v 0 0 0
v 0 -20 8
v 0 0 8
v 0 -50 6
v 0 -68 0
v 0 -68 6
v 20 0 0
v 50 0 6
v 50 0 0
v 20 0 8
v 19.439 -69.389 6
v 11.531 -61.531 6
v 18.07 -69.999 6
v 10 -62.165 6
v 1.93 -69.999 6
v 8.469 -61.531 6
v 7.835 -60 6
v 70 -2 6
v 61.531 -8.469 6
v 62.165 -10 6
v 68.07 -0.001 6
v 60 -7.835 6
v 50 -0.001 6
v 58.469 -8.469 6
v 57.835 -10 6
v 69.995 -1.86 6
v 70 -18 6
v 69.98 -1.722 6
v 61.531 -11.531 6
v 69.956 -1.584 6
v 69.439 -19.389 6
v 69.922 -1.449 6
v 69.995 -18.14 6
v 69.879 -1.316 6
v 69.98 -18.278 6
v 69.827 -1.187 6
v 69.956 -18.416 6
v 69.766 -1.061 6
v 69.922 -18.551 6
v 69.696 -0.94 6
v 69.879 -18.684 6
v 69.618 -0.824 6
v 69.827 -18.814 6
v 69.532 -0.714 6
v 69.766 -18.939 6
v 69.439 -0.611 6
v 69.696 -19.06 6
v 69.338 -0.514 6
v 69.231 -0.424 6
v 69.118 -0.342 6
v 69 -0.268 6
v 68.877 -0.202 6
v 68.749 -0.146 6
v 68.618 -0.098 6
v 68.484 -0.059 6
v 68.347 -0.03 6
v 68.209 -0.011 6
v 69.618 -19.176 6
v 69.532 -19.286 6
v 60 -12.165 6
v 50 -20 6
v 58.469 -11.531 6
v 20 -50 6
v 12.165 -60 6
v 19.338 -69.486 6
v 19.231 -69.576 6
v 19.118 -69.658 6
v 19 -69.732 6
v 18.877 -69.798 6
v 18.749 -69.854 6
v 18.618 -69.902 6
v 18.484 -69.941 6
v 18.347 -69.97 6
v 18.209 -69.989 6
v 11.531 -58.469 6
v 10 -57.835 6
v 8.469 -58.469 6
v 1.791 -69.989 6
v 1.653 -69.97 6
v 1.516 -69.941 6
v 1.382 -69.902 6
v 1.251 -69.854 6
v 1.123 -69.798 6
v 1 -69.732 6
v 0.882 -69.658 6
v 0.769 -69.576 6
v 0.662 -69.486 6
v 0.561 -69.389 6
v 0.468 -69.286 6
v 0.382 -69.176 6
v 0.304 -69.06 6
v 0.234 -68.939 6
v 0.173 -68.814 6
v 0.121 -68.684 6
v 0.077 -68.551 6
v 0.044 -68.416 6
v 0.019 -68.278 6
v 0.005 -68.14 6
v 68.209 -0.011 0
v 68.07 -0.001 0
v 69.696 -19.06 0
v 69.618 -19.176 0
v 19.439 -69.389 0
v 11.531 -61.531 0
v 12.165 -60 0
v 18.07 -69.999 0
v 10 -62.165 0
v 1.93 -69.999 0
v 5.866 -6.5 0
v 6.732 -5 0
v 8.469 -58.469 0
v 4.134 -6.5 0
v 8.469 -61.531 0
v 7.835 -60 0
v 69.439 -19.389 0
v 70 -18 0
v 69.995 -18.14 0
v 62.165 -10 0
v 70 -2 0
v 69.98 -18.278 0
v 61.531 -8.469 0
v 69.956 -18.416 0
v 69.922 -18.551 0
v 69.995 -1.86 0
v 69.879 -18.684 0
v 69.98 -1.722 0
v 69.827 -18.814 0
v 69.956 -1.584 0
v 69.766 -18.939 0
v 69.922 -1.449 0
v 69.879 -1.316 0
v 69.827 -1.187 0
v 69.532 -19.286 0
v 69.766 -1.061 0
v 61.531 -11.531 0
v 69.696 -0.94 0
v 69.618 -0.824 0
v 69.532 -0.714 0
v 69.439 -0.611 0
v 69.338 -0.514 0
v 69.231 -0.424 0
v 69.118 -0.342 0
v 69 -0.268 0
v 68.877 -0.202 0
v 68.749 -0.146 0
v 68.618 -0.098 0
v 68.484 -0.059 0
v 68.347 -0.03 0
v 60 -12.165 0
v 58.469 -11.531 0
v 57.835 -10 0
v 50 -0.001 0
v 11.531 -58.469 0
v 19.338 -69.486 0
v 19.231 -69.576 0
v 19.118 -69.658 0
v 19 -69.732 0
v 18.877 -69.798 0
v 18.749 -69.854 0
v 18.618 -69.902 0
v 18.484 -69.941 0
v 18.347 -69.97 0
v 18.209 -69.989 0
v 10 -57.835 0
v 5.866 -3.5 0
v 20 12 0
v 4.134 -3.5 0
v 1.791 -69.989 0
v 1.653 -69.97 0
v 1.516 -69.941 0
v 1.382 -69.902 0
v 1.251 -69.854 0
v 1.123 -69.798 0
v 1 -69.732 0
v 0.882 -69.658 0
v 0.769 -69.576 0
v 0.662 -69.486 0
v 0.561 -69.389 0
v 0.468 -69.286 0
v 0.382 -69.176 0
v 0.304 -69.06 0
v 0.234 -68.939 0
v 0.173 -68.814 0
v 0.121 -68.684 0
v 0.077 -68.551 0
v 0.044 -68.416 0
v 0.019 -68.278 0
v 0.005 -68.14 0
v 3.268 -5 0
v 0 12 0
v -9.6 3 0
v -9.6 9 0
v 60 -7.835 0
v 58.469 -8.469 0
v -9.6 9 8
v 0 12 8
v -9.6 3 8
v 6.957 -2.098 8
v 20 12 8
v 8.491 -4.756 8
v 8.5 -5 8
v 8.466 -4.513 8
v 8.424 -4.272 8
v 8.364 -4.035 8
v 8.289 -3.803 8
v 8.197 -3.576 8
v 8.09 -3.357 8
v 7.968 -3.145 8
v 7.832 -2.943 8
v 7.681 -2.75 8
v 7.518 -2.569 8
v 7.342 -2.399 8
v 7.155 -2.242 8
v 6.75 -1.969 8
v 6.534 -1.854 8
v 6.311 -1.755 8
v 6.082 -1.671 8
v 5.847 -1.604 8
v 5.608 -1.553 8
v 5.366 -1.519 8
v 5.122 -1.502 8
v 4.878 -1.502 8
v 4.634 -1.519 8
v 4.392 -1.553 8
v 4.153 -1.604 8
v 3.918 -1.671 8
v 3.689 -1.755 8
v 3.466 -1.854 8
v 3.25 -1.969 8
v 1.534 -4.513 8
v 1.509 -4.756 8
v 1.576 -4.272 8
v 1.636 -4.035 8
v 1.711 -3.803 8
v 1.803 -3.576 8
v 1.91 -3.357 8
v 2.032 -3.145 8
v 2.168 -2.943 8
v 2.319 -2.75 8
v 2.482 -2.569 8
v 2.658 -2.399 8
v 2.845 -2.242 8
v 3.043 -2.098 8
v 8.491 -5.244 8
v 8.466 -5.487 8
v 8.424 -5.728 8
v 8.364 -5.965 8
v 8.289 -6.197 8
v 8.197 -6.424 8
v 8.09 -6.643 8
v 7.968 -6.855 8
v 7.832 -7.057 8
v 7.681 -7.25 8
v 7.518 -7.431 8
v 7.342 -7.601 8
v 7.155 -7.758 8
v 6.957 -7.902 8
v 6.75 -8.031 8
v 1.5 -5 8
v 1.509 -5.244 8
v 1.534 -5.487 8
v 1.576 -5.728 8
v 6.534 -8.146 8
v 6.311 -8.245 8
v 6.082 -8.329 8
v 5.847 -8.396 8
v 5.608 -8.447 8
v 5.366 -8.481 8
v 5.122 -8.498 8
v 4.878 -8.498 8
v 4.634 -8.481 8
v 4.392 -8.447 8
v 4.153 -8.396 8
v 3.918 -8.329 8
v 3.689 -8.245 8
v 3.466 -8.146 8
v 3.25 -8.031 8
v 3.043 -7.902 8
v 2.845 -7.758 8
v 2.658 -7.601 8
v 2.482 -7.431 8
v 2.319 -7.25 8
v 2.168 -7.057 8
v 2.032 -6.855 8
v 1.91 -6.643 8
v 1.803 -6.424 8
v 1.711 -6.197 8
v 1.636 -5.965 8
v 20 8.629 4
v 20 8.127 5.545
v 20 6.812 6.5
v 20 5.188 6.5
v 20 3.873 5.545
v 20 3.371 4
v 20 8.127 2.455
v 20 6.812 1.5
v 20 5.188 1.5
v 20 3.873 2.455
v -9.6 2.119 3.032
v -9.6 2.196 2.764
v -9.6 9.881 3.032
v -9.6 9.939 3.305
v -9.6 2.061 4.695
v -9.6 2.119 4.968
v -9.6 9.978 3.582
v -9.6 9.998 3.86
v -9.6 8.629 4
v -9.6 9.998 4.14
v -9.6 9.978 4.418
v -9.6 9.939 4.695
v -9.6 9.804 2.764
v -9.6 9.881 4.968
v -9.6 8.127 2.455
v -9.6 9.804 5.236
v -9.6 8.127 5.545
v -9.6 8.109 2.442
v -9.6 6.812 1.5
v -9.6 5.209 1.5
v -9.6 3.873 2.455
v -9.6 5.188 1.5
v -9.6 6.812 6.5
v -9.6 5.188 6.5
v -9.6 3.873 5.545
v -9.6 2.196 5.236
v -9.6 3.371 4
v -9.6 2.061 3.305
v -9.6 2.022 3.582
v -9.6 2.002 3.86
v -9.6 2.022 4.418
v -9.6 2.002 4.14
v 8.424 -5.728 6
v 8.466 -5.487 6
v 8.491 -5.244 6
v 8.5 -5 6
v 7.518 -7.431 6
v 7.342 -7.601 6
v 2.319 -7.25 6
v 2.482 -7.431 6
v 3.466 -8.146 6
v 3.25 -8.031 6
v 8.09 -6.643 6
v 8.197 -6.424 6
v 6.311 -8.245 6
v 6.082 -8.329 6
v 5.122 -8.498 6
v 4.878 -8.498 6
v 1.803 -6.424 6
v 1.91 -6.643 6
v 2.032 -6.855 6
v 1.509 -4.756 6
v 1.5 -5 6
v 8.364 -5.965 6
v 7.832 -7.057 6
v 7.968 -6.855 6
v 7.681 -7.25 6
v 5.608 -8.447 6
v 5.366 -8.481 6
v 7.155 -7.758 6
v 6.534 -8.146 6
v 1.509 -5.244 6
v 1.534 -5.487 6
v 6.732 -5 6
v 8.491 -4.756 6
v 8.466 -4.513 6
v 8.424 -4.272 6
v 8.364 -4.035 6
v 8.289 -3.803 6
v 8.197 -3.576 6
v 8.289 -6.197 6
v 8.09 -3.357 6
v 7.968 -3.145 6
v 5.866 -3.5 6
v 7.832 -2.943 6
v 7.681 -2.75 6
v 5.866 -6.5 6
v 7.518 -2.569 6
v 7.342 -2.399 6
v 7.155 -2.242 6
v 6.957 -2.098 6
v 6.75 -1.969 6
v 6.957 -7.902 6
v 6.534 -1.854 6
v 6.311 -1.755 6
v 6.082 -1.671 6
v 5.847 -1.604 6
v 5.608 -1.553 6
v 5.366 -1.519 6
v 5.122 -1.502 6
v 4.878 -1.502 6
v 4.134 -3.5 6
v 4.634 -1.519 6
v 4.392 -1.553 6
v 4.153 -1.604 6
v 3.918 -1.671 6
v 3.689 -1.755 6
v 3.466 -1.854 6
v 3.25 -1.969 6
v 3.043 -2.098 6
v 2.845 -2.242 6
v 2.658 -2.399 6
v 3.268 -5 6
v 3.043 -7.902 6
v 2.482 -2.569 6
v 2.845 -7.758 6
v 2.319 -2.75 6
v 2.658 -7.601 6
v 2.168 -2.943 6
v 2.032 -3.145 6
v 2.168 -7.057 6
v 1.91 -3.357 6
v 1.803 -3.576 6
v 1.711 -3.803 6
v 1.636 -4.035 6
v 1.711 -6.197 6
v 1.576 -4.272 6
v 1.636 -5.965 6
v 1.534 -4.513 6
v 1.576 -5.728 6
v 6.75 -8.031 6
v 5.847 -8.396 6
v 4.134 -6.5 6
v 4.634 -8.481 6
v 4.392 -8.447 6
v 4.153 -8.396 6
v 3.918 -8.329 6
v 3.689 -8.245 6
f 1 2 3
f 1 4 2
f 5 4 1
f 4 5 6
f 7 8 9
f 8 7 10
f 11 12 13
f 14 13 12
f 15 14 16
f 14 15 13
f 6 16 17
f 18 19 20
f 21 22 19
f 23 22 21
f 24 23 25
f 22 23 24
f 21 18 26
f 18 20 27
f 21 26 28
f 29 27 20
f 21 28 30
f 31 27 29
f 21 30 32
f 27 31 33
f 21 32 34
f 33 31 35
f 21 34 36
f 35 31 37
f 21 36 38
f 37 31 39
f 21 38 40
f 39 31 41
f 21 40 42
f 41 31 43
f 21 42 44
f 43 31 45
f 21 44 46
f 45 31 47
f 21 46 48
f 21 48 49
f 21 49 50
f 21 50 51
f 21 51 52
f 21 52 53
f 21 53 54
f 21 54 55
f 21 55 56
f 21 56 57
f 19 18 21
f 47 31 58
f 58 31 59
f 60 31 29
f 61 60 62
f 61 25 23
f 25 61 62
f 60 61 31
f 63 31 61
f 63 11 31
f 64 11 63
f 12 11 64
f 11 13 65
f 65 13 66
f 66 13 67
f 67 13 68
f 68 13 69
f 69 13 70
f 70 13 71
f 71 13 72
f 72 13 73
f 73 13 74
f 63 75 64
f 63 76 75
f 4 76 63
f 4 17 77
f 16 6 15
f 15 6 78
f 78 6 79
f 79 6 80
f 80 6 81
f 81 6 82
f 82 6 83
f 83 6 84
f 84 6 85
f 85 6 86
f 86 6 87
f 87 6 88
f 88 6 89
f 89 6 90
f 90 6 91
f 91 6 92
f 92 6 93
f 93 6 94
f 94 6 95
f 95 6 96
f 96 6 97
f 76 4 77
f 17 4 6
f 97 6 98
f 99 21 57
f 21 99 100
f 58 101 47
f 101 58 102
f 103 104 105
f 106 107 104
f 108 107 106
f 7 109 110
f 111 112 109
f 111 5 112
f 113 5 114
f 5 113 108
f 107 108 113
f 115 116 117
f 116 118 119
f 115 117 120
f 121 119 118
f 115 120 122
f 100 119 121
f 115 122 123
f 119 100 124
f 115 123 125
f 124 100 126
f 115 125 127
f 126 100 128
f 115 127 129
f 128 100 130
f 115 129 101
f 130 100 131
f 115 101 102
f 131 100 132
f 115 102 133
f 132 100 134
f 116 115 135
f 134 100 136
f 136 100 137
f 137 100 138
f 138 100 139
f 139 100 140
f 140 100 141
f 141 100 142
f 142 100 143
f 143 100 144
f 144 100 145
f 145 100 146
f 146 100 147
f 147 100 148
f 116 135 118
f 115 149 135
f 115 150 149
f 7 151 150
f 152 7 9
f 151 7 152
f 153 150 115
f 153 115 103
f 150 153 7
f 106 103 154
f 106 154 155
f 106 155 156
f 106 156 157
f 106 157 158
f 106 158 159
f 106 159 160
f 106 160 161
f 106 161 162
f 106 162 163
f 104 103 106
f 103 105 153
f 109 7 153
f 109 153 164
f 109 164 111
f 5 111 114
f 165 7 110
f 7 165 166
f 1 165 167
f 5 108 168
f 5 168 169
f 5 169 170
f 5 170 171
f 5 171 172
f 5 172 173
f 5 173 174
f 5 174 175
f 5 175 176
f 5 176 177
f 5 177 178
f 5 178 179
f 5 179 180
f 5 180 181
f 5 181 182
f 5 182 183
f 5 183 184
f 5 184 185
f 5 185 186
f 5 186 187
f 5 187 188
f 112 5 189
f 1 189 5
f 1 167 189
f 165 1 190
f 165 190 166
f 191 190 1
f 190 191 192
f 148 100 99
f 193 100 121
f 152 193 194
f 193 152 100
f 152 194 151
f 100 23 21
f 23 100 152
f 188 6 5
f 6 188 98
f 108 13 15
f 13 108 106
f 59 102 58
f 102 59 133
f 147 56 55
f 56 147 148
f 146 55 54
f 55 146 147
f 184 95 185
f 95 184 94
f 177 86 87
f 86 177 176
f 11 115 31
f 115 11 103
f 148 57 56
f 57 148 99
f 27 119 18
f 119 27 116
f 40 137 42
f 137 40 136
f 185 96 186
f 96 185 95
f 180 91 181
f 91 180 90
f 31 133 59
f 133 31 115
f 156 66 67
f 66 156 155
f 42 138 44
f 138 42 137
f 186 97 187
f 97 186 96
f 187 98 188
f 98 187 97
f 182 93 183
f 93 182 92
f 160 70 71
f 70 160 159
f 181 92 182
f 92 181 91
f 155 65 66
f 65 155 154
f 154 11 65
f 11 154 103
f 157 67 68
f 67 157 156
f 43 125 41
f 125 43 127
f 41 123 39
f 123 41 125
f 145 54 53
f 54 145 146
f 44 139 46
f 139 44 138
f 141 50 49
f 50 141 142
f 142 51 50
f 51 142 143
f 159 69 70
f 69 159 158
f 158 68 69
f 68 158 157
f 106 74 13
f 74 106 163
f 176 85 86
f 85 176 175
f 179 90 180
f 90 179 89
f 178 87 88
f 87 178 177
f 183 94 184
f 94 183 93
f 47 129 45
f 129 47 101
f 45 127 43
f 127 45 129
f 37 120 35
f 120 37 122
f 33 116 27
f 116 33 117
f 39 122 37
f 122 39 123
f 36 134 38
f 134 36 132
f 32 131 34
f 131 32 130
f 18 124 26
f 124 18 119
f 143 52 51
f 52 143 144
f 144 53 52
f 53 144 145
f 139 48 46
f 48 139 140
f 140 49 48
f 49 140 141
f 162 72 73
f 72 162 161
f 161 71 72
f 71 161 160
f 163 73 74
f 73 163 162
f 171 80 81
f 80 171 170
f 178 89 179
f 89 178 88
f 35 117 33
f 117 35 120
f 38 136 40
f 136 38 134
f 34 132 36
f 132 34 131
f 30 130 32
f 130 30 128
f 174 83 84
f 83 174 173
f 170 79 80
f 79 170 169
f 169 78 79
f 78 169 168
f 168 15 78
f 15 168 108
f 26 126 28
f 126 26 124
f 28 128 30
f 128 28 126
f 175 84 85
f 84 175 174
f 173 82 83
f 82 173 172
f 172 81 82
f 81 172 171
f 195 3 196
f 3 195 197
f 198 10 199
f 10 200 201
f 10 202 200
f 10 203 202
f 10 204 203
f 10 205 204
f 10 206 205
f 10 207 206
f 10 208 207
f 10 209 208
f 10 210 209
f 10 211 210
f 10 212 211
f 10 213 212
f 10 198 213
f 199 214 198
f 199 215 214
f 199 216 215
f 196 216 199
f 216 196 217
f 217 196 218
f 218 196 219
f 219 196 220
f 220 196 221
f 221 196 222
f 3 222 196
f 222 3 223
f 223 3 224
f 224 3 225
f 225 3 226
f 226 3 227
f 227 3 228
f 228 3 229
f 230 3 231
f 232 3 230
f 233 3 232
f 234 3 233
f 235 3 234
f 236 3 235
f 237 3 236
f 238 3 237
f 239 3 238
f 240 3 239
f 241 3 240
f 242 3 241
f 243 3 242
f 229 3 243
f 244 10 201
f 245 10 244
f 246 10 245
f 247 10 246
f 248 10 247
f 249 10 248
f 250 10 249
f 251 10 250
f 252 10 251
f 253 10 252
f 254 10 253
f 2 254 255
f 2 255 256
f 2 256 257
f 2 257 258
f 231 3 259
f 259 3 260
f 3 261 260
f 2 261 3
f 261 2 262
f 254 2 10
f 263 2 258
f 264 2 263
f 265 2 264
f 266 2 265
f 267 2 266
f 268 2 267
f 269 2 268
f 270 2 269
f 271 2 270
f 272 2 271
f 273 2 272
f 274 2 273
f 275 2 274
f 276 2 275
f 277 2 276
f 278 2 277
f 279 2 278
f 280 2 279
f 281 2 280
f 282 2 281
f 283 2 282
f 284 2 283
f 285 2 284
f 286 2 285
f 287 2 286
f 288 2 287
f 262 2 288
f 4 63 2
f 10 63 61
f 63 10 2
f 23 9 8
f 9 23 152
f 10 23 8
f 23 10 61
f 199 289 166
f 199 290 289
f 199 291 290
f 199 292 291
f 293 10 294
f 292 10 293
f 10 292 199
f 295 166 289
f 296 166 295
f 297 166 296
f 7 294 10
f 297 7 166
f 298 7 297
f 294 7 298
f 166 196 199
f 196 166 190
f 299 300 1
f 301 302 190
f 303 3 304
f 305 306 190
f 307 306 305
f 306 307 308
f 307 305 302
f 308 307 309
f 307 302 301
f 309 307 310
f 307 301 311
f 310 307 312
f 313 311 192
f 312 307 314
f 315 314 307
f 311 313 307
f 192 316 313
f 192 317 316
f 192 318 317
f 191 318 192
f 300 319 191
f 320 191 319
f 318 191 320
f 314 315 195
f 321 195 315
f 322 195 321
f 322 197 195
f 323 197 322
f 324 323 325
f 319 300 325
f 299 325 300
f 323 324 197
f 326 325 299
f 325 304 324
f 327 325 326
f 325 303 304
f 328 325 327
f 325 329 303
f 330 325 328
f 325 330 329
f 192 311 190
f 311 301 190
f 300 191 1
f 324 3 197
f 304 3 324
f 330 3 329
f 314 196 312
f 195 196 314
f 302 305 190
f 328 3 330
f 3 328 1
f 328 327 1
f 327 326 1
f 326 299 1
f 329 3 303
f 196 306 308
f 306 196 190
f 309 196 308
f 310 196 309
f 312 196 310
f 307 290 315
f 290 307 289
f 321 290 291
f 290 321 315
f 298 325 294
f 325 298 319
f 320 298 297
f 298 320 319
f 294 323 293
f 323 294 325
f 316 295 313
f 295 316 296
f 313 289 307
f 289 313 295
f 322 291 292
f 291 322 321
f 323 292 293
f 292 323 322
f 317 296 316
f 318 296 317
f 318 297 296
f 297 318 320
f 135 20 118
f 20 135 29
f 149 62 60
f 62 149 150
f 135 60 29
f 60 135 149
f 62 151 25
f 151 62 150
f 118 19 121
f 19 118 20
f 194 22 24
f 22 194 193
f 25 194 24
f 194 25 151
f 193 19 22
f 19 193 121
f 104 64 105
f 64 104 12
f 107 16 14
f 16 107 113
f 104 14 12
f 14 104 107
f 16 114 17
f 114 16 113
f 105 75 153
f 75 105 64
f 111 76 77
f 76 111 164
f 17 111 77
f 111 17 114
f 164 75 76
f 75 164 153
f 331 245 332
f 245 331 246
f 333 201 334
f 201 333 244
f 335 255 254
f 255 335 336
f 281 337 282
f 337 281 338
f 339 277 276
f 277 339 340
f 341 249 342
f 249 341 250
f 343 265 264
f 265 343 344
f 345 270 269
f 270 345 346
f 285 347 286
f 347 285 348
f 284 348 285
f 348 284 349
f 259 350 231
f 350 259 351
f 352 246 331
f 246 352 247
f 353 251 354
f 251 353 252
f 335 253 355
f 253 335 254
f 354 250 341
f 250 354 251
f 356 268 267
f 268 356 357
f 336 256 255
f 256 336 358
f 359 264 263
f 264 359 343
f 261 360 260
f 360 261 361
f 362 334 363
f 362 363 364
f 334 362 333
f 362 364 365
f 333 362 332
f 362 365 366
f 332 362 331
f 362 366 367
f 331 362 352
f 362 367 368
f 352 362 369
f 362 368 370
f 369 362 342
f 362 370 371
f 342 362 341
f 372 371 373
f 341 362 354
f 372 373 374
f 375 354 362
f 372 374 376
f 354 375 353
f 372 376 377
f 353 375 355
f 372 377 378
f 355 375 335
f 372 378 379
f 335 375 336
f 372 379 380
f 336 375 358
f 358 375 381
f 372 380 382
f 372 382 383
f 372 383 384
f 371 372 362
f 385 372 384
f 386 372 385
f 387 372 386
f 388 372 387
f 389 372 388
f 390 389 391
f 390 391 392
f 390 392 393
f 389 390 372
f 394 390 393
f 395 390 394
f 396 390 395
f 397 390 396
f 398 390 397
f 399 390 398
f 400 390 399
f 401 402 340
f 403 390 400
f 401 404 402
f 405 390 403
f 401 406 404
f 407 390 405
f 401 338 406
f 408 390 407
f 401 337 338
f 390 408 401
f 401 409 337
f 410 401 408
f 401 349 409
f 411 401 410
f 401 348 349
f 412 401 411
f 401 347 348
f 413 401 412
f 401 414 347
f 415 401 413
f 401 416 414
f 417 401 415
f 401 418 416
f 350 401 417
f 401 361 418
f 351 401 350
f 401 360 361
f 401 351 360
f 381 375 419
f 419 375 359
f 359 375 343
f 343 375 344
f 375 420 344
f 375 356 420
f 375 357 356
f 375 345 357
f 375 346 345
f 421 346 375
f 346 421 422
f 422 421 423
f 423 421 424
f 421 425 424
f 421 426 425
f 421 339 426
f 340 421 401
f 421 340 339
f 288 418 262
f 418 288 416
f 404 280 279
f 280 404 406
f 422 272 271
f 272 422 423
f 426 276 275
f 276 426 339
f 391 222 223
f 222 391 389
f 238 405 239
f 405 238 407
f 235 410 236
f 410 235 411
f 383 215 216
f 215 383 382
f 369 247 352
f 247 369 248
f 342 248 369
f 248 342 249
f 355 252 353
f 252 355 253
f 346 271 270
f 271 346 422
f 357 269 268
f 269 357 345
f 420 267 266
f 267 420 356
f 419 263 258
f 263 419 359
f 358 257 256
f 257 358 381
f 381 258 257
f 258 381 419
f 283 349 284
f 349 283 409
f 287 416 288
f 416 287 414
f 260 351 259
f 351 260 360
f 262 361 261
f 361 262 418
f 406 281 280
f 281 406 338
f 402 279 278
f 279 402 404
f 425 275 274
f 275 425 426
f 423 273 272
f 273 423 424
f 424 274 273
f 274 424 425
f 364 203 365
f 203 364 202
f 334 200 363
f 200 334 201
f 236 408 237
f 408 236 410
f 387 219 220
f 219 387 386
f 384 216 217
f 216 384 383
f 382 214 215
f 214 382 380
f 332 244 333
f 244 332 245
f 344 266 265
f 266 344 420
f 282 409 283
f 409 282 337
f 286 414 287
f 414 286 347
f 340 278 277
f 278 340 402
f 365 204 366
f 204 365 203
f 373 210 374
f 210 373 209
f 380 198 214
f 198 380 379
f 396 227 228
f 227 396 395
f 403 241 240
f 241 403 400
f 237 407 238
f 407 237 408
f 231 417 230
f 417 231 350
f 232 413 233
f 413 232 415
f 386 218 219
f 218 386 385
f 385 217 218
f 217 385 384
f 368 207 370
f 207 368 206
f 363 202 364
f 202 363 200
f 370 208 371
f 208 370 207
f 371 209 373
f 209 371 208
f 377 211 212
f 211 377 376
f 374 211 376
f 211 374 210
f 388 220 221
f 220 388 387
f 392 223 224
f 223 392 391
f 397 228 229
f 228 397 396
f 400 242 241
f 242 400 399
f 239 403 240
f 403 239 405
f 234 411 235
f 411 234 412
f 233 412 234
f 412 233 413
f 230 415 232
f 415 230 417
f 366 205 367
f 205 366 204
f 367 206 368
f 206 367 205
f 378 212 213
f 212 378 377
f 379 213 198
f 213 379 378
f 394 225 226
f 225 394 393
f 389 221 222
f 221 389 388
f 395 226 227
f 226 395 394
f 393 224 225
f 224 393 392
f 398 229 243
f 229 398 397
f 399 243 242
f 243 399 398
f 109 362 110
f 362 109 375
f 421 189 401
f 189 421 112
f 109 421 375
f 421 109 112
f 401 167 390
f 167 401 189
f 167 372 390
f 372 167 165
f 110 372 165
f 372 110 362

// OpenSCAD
// file: polyhole.scad
// The Cylinder is dead! Long live the Cylinder!
// A module for a polyhole by radius, based on Nophead's work.

module polyhole(h, r, cent = false)
{
    n = max(round(4 * r), 3);
    cylinder(h = h, r = r / cos(180 / n), $fn = n, center = cent);
}
// file: BedMount.scad
// A corner mount for the bed, which uses one V wheel. Uses 40mm m5 bolts to mount the wheels

use<polyhole.scad>

BedMount();

module BedMount()
{
    difference()
    {
        union()
        {
            hull()
            {
                translate([10, 10, 3])
                    cube([20, 20, 6], center = true);
                translate([68, 2, 0])
                    cylinder(h = 6, r = 2, $fn = 90);
                translate([68, 18, 0])
                    cylinder(h = 6, r = 2, $fn = 90);
                translate([2, 68, 0])
                    cylinder(h = 6, r = 2, $fn = 90);
                translate([18, 68, 0])
                    cylinder(h = 6, r = 2, $fn = 90);
            }
            hull()
            {
                linear_extrude(height = 8)
                    polygon([[0, 0], [20, 0], [0, 20]]);
                linear_extrude(height = 6)
                    polygon([[0, 0], [50, 0], [50, 20], [20, 50], [0, 50]]);
            }
            hull()
            {
                hull()
                {
                    dist = 5; //distance from edge of bed to v slot extrusion
                    translate([-dist, -6, 1])
                        cube([(10-5.40)*2, 6, 2], center = true);
                    translate([-dist, -6, 4])
                        rotate([0, 90, 0])
                            cylinder(h = (10-5.40)*2, r = 4, $fn = 90, center = true);
                    translate([-dist, -6, 7])
                        cube([(10-5.40)*2, 6, 2], center = true);
                }
                linear_extrude(height = 8)
                    polygon([[0, -12], [20, -12], [20, 0], [0, 0]]);
            }
        }
        translate([20, -6, 4])
            rotate([90, 0, -90])
                polyhole(30, 2.5);
        translate([60, 10, 0])
            polyhole(6, 2);
        translate([10, 60, 0])
            polyhole(6, 2);
        translate([5, 5, 6])
            cylinder(h = 2, r = 3.5, $fn = 90);
        translate([5, 5, 0])
            polyhole(6, 1.5);
    }
}
// main file
//Other side of the bed mount with one wheel

use<BedMount.scad>

BedMountMirror();

module BedMountMirror()
{
    scale([1, -1, 1])
        BedMount();
}
